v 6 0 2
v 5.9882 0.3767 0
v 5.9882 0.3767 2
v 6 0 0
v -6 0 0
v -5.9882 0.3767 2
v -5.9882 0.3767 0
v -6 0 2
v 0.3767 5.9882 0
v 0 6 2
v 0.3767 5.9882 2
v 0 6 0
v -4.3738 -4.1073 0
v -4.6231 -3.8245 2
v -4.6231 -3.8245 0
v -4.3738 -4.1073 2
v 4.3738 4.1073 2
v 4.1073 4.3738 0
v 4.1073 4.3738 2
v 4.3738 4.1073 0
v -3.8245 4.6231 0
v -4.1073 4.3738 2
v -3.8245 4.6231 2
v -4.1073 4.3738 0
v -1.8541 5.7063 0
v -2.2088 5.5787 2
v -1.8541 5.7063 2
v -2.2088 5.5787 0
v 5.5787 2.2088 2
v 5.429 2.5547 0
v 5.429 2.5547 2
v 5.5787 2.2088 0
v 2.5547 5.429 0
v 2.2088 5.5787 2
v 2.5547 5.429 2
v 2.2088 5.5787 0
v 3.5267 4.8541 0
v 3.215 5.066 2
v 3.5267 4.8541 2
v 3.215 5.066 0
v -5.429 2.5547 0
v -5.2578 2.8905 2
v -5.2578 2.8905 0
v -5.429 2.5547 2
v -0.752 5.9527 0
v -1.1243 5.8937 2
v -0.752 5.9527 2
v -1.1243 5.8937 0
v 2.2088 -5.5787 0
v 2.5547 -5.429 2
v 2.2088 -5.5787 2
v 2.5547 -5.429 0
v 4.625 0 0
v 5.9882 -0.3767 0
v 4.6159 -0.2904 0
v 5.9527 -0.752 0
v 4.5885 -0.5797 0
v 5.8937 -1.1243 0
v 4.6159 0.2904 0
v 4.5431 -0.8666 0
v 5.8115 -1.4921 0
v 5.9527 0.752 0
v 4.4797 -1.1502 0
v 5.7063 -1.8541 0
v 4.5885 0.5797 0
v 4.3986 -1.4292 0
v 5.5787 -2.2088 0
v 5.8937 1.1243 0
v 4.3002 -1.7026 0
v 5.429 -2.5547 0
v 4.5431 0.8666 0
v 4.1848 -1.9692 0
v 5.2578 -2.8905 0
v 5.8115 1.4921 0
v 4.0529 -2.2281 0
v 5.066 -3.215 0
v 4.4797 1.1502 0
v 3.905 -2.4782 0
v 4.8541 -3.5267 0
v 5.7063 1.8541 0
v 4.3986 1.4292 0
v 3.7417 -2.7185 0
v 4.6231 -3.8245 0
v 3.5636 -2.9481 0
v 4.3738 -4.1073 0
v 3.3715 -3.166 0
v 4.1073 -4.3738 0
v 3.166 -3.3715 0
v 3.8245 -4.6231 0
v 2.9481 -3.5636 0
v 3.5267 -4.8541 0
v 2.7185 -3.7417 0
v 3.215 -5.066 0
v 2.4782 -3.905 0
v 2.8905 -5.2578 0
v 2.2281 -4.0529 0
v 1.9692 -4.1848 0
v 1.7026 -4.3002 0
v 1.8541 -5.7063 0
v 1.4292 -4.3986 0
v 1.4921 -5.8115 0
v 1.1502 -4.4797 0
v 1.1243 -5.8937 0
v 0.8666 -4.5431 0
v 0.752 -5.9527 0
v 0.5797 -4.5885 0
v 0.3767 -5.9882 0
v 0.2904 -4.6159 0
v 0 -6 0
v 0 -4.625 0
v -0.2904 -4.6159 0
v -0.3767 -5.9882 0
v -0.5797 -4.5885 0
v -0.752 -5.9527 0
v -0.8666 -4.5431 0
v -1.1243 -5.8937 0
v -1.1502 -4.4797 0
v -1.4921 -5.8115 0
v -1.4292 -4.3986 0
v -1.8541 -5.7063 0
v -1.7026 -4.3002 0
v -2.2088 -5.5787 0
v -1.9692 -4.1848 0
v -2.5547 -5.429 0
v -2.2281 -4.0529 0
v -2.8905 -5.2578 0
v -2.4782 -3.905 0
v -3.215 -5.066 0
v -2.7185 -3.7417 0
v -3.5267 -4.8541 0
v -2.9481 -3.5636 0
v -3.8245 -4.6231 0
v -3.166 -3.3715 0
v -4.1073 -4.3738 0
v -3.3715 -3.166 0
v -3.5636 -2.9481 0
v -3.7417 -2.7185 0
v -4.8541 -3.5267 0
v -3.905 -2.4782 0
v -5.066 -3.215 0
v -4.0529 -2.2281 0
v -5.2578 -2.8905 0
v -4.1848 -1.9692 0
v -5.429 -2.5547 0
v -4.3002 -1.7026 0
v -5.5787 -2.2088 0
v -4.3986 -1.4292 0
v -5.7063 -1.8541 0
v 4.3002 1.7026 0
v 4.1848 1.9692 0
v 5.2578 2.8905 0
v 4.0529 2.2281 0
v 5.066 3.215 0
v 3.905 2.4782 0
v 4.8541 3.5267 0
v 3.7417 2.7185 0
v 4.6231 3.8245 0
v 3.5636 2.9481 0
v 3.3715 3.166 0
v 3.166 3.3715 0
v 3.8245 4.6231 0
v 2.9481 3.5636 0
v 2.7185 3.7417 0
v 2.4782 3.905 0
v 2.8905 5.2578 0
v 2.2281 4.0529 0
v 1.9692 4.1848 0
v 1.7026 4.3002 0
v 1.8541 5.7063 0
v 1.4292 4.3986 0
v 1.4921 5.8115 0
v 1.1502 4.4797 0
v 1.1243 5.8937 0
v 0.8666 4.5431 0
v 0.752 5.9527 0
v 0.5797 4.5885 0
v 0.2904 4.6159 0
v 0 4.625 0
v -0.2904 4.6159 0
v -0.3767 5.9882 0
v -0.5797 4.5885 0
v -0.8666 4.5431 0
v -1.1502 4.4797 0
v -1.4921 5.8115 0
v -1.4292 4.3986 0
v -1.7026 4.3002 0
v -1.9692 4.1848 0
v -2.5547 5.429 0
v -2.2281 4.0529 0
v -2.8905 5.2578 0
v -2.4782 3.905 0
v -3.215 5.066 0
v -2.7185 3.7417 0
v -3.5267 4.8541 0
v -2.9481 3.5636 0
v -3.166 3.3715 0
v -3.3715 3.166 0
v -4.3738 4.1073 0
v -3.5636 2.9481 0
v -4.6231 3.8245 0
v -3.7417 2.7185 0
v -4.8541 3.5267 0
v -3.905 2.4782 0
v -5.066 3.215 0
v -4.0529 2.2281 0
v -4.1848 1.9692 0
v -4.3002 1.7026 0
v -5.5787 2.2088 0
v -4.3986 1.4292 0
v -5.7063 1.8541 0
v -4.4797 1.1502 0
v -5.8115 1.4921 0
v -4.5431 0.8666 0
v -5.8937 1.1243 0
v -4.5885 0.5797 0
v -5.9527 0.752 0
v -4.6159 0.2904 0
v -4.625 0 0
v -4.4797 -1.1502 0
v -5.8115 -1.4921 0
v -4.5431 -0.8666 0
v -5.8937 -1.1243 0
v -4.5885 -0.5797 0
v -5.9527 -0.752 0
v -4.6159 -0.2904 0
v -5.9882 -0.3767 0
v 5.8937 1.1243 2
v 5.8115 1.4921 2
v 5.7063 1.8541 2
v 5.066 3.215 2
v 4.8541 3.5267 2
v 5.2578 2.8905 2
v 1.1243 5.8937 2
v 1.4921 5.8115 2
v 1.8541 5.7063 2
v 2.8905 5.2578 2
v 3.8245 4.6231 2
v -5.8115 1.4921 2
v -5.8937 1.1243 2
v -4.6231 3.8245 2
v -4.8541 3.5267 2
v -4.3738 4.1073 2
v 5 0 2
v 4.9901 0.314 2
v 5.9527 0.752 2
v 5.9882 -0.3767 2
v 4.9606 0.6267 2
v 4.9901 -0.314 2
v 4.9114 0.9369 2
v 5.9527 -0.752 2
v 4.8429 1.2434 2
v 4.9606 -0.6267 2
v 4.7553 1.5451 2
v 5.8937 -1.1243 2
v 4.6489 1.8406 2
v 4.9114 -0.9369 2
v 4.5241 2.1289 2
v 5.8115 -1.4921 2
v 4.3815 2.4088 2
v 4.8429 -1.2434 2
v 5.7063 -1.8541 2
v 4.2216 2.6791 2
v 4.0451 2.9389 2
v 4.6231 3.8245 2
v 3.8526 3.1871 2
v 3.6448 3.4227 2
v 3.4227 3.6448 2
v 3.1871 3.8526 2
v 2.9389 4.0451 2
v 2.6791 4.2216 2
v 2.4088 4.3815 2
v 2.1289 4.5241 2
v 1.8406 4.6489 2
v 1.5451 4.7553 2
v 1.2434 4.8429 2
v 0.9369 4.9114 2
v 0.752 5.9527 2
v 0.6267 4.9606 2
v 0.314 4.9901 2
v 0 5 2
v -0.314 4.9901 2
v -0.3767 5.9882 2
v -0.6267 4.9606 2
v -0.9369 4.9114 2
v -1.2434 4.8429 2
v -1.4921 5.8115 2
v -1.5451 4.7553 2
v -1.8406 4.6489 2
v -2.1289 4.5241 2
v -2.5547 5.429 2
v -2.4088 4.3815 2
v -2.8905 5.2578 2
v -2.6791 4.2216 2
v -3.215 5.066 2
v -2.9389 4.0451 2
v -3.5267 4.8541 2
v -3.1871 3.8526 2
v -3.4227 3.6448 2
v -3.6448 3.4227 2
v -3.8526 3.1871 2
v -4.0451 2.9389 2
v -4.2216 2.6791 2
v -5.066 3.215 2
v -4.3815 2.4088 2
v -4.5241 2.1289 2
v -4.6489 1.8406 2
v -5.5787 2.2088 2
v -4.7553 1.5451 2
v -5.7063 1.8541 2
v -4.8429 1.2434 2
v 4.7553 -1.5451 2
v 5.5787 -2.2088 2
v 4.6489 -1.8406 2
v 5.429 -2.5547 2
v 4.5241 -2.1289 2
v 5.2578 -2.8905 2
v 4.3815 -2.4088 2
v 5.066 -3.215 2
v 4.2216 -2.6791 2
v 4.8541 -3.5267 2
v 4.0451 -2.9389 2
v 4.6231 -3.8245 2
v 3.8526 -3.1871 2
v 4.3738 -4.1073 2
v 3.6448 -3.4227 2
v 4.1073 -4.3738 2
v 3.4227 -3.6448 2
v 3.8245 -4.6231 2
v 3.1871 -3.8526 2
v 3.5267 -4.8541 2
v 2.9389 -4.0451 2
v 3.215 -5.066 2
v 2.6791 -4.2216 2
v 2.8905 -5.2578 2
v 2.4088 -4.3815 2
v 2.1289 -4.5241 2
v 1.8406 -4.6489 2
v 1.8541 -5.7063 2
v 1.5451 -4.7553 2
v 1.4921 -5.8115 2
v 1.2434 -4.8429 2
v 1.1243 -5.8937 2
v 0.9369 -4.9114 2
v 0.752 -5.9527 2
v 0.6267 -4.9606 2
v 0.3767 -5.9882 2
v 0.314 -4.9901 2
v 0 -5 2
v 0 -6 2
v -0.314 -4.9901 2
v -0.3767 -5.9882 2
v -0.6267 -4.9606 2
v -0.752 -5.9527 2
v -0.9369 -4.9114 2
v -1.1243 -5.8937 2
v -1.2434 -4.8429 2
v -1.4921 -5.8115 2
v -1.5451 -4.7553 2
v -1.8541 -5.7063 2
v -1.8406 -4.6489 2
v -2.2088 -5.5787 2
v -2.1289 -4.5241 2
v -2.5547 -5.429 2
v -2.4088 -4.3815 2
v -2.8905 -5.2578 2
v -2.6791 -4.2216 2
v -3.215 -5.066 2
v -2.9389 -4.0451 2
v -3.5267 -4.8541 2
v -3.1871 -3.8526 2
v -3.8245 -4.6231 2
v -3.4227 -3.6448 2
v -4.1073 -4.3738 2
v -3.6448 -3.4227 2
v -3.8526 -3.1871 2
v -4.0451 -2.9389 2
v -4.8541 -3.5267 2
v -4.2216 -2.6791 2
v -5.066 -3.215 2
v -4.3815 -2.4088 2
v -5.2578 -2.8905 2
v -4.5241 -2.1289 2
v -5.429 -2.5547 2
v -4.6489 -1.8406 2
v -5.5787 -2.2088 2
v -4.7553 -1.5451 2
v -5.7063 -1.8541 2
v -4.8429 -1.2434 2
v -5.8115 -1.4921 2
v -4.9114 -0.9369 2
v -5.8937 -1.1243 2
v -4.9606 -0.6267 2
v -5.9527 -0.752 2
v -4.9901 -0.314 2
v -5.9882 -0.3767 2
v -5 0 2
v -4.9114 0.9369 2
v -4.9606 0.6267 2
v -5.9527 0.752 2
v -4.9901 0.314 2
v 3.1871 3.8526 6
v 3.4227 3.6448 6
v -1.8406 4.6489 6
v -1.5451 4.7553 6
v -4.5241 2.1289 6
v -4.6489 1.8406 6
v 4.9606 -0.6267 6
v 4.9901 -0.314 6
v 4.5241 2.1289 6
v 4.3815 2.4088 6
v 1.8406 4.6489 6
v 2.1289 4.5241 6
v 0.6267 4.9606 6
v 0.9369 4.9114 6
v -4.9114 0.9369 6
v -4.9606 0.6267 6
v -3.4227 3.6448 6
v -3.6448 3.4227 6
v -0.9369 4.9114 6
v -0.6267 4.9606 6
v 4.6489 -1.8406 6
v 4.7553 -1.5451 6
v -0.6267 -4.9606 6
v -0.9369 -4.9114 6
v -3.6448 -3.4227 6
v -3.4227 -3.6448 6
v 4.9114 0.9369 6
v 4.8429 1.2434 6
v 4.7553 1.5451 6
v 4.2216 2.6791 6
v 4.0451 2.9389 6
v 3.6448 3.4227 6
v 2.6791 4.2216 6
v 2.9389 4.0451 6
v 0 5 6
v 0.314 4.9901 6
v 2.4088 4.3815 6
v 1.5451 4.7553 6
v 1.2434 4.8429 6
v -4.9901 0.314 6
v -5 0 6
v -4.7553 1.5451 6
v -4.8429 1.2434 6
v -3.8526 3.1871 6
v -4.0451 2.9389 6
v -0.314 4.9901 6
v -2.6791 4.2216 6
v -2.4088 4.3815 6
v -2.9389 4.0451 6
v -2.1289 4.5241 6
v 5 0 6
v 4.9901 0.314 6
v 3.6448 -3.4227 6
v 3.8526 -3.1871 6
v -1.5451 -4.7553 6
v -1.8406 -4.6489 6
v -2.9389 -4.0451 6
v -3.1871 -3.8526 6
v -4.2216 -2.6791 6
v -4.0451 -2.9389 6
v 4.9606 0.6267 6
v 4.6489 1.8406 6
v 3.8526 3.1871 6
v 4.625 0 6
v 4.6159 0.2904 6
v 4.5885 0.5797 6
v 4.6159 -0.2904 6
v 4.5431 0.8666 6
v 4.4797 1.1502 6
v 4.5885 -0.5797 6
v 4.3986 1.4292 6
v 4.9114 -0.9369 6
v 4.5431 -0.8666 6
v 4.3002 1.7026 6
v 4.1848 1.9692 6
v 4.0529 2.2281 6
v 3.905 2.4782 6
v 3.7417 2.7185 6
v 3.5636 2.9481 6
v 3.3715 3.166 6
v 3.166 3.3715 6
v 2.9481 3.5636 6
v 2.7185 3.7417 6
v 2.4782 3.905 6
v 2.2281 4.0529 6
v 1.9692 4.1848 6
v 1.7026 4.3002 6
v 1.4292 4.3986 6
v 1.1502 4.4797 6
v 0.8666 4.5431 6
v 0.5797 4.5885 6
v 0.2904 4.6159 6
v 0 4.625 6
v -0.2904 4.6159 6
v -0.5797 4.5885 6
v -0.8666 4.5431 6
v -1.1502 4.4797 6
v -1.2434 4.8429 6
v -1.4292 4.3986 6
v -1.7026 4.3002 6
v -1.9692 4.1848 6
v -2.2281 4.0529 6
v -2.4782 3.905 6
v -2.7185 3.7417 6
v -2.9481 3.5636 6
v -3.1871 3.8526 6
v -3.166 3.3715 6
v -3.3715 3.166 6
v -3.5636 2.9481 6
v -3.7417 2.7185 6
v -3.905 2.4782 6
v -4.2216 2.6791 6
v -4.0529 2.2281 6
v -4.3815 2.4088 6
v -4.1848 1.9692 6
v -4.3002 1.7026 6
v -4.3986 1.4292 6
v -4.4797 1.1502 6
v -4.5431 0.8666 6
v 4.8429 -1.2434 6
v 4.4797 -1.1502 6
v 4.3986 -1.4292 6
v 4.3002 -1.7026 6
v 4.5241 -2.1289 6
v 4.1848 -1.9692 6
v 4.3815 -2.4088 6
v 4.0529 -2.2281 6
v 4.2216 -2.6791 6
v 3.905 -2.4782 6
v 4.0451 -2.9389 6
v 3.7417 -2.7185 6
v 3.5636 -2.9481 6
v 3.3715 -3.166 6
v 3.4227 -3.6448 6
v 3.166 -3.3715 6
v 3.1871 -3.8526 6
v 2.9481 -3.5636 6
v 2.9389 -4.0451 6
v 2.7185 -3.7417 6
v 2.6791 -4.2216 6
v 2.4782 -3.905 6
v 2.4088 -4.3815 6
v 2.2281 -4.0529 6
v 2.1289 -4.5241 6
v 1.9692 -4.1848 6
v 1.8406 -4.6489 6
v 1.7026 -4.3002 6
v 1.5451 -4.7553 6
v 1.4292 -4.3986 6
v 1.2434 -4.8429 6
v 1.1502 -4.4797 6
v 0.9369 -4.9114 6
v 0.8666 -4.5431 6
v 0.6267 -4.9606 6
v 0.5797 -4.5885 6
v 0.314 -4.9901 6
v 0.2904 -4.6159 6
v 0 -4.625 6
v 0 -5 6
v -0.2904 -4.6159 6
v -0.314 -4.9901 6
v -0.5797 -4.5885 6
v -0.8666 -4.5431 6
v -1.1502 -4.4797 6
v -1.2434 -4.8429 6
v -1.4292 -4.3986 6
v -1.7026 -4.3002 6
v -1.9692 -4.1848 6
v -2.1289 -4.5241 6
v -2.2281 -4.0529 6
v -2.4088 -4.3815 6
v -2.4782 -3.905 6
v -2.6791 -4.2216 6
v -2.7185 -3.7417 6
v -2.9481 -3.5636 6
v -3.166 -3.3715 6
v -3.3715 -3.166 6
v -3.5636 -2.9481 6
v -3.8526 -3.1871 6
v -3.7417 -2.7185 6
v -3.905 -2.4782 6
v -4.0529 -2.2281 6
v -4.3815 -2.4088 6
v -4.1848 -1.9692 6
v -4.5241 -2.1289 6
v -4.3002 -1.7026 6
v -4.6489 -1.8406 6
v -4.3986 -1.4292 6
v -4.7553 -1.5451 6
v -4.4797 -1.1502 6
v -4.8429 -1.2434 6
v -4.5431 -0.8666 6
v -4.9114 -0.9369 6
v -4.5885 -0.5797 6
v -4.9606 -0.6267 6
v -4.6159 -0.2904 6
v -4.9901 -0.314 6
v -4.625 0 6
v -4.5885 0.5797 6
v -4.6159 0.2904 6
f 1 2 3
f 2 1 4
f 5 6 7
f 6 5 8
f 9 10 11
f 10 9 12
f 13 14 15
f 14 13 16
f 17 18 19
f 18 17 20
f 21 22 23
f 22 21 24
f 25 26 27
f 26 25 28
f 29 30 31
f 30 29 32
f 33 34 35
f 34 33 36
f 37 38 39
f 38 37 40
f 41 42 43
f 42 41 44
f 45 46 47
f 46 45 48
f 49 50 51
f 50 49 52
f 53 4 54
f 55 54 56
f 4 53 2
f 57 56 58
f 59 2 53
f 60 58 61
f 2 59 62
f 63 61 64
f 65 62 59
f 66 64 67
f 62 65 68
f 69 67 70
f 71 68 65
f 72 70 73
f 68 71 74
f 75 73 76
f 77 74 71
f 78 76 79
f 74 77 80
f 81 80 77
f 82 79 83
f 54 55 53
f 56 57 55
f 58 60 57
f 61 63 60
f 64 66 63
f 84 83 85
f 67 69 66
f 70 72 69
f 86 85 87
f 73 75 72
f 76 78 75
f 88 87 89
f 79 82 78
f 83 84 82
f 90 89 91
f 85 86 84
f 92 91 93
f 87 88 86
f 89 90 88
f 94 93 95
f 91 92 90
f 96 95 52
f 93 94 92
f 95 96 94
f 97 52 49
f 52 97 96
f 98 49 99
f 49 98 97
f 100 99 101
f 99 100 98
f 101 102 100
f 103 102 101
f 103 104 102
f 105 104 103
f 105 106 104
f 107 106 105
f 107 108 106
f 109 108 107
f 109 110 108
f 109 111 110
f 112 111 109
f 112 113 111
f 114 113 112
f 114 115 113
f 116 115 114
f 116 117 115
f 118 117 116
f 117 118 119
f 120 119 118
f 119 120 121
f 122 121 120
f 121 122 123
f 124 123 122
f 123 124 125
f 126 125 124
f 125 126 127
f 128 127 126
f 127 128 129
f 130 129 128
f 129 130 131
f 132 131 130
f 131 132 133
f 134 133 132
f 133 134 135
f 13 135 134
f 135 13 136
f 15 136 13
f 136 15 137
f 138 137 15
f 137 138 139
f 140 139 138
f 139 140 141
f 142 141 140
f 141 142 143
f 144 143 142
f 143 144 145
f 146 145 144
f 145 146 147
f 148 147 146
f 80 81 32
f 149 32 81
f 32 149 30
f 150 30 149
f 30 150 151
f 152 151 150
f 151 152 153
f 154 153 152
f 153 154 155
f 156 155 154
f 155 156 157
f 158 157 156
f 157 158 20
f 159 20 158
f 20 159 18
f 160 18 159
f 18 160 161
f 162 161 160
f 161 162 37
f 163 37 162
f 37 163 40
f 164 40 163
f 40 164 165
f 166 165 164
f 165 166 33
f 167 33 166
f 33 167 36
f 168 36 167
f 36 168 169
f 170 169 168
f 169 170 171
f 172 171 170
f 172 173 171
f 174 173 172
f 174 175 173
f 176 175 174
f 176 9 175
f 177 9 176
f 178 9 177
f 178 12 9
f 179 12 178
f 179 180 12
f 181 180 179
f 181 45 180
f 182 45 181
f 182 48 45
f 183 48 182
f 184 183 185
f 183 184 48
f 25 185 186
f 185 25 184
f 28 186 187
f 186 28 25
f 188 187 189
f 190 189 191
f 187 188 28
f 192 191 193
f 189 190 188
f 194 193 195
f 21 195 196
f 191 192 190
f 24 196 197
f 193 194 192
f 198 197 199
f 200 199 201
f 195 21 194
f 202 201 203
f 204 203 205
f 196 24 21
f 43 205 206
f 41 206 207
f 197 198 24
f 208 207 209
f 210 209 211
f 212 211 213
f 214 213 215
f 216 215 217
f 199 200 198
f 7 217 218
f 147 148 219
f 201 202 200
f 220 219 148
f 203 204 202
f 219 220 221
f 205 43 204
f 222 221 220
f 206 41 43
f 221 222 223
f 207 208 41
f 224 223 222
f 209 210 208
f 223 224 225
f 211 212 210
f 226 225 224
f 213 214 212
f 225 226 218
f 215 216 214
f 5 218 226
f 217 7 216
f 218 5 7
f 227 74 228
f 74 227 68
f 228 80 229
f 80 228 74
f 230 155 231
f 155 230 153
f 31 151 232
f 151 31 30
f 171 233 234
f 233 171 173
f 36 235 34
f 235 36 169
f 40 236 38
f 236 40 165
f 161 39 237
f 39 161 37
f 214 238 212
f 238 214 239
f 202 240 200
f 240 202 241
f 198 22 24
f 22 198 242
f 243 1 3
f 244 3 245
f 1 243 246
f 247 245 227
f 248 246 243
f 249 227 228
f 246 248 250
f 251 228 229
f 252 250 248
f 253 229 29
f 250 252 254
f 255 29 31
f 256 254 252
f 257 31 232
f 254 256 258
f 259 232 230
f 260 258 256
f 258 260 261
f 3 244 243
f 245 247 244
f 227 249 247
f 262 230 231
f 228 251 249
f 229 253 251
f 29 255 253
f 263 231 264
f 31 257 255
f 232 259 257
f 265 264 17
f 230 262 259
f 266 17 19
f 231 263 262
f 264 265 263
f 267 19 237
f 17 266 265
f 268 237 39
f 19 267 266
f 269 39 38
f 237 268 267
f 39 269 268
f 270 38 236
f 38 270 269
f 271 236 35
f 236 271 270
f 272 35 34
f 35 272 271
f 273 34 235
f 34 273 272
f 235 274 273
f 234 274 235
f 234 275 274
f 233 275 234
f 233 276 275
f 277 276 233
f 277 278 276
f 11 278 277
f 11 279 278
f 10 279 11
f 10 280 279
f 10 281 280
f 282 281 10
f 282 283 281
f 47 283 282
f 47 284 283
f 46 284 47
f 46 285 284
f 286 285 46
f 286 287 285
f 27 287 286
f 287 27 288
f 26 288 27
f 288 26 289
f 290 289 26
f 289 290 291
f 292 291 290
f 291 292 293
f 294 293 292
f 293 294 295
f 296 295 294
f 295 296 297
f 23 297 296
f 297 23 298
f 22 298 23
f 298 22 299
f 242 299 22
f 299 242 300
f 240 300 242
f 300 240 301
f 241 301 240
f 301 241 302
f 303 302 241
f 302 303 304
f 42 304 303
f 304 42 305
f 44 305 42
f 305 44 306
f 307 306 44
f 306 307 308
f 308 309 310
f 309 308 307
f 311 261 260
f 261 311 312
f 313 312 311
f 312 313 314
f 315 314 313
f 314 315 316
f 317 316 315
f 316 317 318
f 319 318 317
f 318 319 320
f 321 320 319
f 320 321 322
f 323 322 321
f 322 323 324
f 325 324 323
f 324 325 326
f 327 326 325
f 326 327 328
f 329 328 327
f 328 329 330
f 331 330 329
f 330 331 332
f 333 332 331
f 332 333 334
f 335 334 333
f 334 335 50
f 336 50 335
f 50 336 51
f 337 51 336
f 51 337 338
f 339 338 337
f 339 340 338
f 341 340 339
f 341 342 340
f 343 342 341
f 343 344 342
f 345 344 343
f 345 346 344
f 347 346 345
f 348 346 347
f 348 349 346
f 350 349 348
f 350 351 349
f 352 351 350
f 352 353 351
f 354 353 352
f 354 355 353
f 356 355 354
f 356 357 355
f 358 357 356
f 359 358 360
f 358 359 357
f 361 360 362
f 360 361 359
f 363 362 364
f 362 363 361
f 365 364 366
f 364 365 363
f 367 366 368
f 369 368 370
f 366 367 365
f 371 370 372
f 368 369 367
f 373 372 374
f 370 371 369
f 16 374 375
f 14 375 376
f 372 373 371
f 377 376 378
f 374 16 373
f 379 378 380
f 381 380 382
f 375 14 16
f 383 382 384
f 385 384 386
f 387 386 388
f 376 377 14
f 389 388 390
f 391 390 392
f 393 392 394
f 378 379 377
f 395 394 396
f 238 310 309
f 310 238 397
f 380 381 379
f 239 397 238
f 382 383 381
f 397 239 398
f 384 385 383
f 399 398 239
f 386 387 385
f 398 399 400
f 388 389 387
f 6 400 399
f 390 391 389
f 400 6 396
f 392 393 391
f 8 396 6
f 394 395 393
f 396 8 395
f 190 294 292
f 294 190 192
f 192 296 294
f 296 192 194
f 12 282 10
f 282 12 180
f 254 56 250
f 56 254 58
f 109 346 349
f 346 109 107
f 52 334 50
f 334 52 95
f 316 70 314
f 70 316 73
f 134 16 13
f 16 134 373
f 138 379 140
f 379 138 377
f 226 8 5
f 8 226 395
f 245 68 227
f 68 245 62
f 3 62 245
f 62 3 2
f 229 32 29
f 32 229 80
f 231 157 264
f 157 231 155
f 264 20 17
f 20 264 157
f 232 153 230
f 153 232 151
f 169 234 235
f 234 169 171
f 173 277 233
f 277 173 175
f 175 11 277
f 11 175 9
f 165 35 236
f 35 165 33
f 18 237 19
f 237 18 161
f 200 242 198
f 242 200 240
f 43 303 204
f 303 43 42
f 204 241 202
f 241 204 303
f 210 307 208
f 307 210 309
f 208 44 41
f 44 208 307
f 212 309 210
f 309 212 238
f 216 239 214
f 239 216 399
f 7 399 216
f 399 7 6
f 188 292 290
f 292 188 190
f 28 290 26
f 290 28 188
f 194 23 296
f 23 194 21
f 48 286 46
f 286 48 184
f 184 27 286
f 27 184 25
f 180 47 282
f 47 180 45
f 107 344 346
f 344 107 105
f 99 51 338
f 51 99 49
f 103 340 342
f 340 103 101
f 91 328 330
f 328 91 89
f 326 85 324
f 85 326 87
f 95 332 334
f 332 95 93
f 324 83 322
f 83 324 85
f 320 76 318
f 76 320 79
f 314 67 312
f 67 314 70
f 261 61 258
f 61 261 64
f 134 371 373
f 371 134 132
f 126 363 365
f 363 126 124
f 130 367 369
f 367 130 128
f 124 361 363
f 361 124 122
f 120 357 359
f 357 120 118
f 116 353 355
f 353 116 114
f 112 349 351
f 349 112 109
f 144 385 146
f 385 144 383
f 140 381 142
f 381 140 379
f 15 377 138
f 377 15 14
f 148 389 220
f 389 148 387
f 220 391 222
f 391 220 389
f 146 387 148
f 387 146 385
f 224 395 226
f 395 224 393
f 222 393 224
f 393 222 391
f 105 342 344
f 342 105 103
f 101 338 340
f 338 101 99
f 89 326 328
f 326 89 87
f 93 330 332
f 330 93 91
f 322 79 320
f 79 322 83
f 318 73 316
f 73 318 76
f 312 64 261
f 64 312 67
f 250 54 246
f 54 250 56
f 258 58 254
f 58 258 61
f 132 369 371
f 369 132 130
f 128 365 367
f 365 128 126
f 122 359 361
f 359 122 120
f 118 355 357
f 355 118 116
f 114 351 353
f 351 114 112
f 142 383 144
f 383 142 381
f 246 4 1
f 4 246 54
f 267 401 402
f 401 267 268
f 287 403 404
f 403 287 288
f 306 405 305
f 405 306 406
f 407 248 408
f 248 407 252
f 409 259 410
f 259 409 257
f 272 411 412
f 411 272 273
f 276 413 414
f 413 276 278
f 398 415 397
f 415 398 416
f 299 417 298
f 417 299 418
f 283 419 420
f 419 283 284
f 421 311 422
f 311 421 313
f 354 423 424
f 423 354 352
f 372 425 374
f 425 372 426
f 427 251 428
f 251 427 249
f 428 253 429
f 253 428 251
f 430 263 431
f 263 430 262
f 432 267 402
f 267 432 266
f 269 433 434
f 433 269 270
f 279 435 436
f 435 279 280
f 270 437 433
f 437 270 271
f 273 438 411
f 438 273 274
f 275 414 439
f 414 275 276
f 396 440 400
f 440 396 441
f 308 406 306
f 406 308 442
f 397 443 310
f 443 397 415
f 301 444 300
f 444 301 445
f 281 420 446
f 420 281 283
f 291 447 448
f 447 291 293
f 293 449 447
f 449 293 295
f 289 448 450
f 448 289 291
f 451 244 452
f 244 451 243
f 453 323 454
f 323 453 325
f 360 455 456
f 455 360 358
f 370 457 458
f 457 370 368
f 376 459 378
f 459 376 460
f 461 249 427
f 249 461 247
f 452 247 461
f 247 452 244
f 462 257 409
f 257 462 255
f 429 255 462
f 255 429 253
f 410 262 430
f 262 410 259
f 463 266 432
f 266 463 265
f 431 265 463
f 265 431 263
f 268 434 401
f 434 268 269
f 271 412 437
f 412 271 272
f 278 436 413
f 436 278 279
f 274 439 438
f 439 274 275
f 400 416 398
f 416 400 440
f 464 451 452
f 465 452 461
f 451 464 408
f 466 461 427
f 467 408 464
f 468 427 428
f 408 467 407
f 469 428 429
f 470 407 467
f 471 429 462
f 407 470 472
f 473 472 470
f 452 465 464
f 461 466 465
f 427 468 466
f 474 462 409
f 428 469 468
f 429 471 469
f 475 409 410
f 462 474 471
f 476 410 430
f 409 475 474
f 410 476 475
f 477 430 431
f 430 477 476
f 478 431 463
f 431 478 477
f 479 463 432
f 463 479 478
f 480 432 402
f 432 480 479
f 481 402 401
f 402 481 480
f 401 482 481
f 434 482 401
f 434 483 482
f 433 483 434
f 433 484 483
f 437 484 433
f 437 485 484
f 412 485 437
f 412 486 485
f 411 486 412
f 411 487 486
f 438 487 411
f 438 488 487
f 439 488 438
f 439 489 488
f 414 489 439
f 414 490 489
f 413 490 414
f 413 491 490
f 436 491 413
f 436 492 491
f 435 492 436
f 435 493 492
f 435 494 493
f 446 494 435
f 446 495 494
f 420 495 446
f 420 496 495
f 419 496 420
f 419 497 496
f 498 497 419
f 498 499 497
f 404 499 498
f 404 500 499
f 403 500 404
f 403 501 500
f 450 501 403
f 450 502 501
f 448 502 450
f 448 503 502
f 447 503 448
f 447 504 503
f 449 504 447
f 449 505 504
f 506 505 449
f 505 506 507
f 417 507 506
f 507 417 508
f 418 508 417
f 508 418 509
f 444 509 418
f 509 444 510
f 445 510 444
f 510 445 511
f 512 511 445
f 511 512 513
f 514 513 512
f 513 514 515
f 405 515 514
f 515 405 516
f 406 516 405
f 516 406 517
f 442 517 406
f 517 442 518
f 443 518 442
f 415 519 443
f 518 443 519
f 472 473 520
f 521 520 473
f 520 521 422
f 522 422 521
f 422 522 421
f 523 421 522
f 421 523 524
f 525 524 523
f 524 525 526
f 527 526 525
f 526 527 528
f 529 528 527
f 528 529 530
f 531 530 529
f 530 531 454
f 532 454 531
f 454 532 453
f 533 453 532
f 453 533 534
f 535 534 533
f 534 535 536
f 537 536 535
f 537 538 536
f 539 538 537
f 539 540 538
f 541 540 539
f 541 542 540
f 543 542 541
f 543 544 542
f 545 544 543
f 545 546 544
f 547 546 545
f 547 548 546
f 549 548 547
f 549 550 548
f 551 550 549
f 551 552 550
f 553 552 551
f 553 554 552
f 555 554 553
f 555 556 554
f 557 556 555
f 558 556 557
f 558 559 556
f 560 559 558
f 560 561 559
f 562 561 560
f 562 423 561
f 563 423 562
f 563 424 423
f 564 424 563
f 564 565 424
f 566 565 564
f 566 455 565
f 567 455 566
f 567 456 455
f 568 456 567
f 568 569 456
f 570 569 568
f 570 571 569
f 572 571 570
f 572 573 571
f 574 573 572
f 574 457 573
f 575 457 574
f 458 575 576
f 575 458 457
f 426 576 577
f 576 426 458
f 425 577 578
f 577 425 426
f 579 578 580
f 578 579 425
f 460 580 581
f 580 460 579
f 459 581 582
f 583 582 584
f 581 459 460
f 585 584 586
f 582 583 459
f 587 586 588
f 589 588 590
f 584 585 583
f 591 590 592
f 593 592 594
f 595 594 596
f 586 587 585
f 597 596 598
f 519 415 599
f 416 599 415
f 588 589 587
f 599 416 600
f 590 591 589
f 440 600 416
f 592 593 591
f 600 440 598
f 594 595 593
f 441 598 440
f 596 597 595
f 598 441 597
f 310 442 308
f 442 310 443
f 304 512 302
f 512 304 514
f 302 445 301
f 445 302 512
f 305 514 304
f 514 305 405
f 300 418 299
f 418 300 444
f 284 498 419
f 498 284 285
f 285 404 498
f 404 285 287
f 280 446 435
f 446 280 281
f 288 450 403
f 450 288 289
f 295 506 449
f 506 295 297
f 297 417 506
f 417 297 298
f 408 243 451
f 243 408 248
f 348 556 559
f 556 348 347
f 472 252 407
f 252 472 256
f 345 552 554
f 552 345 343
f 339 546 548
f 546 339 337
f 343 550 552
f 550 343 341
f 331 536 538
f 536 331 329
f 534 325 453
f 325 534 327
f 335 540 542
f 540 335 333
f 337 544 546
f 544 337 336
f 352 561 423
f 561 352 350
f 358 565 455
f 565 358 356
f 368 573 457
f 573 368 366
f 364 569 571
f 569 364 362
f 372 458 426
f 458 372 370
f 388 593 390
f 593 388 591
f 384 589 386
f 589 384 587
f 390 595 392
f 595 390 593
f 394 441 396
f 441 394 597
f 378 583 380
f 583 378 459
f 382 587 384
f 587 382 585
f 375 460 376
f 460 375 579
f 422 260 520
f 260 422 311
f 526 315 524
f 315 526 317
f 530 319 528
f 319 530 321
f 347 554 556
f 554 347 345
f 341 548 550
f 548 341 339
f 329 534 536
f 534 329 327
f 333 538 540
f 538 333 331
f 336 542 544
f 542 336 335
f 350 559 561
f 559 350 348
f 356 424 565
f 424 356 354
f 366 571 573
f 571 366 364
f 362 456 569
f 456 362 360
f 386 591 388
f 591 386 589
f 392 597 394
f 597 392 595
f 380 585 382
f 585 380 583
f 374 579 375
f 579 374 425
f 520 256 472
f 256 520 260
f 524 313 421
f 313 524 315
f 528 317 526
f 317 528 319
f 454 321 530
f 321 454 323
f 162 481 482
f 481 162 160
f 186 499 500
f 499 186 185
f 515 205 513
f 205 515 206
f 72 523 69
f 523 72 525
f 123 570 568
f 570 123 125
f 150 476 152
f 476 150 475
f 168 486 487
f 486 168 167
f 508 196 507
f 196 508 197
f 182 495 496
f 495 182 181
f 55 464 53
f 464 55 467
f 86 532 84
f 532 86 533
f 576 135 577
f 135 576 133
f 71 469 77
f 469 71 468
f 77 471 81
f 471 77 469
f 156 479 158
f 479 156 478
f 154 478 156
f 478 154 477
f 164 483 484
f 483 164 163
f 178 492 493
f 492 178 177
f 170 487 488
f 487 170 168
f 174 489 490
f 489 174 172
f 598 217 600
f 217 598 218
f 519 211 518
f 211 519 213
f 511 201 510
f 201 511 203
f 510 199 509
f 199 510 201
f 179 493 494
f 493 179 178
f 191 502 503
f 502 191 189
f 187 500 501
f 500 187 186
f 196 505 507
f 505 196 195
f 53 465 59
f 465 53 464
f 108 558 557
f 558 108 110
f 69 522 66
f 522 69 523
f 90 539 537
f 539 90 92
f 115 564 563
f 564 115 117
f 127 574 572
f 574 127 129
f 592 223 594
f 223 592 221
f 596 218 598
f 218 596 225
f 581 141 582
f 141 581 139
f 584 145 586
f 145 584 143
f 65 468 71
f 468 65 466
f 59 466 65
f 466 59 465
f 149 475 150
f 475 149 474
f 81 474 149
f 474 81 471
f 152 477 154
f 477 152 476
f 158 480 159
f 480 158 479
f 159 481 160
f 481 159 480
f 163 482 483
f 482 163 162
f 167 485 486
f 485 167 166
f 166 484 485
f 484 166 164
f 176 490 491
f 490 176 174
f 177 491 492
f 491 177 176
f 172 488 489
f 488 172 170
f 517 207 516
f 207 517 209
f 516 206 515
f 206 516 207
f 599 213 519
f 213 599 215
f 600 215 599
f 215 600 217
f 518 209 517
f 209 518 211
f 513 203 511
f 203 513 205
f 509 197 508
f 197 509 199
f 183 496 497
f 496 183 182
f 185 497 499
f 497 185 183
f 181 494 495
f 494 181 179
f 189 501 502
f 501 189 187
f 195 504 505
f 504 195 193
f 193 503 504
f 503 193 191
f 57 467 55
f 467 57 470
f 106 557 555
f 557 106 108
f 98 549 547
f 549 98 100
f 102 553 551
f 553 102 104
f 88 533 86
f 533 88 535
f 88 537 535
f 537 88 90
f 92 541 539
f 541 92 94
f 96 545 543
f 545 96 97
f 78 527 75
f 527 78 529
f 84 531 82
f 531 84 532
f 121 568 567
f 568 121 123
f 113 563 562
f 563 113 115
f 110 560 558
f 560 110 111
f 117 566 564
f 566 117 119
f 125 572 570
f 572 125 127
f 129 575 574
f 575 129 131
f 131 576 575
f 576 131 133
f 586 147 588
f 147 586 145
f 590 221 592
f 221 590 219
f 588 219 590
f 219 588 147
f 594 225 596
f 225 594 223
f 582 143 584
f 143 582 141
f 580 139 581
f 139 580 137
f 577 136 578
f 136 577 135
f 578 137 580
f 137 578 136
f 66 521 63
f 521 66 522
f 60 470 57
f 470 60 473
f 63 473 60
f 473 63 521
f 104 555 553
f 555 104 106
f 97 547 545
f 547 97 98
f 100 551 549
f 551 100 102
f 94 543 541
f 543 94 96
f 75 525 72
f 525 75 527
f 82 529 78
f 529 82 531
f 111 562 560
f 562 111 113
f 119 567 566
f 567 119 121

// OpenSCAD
//prumer loziska 10 mm
//pocinato se sroubem M8 o min delce 20 mm

include <../src/Parameters.scad>
outer_diameter = 10;
inner_diameter = M8_screw_diameter+0.25;//9+0,25
rim_outer_diameter=12;
module 888_3016(draft = true){

    //inner_diameter = M6_screw_diameter - 0.25;
    //outer_diameter = bearing_efsm_10_d + 3;
    rim_height = 2;
    bearng_ball_height = 9/2-0.5;
    difference(){
        union(){
            cylinder(h = rim_height, d = rim_outer_diameter, $fn = 100);
            translate([0,0,rim_height])
                cylinder(h = bearng_ball_height, d = outer_diameter, $fn = 100);
        }
        cylinder(h = 2 * bearng_ball_height , d = inner_diameter, $fn = 100);
    }
}
888_3016();
